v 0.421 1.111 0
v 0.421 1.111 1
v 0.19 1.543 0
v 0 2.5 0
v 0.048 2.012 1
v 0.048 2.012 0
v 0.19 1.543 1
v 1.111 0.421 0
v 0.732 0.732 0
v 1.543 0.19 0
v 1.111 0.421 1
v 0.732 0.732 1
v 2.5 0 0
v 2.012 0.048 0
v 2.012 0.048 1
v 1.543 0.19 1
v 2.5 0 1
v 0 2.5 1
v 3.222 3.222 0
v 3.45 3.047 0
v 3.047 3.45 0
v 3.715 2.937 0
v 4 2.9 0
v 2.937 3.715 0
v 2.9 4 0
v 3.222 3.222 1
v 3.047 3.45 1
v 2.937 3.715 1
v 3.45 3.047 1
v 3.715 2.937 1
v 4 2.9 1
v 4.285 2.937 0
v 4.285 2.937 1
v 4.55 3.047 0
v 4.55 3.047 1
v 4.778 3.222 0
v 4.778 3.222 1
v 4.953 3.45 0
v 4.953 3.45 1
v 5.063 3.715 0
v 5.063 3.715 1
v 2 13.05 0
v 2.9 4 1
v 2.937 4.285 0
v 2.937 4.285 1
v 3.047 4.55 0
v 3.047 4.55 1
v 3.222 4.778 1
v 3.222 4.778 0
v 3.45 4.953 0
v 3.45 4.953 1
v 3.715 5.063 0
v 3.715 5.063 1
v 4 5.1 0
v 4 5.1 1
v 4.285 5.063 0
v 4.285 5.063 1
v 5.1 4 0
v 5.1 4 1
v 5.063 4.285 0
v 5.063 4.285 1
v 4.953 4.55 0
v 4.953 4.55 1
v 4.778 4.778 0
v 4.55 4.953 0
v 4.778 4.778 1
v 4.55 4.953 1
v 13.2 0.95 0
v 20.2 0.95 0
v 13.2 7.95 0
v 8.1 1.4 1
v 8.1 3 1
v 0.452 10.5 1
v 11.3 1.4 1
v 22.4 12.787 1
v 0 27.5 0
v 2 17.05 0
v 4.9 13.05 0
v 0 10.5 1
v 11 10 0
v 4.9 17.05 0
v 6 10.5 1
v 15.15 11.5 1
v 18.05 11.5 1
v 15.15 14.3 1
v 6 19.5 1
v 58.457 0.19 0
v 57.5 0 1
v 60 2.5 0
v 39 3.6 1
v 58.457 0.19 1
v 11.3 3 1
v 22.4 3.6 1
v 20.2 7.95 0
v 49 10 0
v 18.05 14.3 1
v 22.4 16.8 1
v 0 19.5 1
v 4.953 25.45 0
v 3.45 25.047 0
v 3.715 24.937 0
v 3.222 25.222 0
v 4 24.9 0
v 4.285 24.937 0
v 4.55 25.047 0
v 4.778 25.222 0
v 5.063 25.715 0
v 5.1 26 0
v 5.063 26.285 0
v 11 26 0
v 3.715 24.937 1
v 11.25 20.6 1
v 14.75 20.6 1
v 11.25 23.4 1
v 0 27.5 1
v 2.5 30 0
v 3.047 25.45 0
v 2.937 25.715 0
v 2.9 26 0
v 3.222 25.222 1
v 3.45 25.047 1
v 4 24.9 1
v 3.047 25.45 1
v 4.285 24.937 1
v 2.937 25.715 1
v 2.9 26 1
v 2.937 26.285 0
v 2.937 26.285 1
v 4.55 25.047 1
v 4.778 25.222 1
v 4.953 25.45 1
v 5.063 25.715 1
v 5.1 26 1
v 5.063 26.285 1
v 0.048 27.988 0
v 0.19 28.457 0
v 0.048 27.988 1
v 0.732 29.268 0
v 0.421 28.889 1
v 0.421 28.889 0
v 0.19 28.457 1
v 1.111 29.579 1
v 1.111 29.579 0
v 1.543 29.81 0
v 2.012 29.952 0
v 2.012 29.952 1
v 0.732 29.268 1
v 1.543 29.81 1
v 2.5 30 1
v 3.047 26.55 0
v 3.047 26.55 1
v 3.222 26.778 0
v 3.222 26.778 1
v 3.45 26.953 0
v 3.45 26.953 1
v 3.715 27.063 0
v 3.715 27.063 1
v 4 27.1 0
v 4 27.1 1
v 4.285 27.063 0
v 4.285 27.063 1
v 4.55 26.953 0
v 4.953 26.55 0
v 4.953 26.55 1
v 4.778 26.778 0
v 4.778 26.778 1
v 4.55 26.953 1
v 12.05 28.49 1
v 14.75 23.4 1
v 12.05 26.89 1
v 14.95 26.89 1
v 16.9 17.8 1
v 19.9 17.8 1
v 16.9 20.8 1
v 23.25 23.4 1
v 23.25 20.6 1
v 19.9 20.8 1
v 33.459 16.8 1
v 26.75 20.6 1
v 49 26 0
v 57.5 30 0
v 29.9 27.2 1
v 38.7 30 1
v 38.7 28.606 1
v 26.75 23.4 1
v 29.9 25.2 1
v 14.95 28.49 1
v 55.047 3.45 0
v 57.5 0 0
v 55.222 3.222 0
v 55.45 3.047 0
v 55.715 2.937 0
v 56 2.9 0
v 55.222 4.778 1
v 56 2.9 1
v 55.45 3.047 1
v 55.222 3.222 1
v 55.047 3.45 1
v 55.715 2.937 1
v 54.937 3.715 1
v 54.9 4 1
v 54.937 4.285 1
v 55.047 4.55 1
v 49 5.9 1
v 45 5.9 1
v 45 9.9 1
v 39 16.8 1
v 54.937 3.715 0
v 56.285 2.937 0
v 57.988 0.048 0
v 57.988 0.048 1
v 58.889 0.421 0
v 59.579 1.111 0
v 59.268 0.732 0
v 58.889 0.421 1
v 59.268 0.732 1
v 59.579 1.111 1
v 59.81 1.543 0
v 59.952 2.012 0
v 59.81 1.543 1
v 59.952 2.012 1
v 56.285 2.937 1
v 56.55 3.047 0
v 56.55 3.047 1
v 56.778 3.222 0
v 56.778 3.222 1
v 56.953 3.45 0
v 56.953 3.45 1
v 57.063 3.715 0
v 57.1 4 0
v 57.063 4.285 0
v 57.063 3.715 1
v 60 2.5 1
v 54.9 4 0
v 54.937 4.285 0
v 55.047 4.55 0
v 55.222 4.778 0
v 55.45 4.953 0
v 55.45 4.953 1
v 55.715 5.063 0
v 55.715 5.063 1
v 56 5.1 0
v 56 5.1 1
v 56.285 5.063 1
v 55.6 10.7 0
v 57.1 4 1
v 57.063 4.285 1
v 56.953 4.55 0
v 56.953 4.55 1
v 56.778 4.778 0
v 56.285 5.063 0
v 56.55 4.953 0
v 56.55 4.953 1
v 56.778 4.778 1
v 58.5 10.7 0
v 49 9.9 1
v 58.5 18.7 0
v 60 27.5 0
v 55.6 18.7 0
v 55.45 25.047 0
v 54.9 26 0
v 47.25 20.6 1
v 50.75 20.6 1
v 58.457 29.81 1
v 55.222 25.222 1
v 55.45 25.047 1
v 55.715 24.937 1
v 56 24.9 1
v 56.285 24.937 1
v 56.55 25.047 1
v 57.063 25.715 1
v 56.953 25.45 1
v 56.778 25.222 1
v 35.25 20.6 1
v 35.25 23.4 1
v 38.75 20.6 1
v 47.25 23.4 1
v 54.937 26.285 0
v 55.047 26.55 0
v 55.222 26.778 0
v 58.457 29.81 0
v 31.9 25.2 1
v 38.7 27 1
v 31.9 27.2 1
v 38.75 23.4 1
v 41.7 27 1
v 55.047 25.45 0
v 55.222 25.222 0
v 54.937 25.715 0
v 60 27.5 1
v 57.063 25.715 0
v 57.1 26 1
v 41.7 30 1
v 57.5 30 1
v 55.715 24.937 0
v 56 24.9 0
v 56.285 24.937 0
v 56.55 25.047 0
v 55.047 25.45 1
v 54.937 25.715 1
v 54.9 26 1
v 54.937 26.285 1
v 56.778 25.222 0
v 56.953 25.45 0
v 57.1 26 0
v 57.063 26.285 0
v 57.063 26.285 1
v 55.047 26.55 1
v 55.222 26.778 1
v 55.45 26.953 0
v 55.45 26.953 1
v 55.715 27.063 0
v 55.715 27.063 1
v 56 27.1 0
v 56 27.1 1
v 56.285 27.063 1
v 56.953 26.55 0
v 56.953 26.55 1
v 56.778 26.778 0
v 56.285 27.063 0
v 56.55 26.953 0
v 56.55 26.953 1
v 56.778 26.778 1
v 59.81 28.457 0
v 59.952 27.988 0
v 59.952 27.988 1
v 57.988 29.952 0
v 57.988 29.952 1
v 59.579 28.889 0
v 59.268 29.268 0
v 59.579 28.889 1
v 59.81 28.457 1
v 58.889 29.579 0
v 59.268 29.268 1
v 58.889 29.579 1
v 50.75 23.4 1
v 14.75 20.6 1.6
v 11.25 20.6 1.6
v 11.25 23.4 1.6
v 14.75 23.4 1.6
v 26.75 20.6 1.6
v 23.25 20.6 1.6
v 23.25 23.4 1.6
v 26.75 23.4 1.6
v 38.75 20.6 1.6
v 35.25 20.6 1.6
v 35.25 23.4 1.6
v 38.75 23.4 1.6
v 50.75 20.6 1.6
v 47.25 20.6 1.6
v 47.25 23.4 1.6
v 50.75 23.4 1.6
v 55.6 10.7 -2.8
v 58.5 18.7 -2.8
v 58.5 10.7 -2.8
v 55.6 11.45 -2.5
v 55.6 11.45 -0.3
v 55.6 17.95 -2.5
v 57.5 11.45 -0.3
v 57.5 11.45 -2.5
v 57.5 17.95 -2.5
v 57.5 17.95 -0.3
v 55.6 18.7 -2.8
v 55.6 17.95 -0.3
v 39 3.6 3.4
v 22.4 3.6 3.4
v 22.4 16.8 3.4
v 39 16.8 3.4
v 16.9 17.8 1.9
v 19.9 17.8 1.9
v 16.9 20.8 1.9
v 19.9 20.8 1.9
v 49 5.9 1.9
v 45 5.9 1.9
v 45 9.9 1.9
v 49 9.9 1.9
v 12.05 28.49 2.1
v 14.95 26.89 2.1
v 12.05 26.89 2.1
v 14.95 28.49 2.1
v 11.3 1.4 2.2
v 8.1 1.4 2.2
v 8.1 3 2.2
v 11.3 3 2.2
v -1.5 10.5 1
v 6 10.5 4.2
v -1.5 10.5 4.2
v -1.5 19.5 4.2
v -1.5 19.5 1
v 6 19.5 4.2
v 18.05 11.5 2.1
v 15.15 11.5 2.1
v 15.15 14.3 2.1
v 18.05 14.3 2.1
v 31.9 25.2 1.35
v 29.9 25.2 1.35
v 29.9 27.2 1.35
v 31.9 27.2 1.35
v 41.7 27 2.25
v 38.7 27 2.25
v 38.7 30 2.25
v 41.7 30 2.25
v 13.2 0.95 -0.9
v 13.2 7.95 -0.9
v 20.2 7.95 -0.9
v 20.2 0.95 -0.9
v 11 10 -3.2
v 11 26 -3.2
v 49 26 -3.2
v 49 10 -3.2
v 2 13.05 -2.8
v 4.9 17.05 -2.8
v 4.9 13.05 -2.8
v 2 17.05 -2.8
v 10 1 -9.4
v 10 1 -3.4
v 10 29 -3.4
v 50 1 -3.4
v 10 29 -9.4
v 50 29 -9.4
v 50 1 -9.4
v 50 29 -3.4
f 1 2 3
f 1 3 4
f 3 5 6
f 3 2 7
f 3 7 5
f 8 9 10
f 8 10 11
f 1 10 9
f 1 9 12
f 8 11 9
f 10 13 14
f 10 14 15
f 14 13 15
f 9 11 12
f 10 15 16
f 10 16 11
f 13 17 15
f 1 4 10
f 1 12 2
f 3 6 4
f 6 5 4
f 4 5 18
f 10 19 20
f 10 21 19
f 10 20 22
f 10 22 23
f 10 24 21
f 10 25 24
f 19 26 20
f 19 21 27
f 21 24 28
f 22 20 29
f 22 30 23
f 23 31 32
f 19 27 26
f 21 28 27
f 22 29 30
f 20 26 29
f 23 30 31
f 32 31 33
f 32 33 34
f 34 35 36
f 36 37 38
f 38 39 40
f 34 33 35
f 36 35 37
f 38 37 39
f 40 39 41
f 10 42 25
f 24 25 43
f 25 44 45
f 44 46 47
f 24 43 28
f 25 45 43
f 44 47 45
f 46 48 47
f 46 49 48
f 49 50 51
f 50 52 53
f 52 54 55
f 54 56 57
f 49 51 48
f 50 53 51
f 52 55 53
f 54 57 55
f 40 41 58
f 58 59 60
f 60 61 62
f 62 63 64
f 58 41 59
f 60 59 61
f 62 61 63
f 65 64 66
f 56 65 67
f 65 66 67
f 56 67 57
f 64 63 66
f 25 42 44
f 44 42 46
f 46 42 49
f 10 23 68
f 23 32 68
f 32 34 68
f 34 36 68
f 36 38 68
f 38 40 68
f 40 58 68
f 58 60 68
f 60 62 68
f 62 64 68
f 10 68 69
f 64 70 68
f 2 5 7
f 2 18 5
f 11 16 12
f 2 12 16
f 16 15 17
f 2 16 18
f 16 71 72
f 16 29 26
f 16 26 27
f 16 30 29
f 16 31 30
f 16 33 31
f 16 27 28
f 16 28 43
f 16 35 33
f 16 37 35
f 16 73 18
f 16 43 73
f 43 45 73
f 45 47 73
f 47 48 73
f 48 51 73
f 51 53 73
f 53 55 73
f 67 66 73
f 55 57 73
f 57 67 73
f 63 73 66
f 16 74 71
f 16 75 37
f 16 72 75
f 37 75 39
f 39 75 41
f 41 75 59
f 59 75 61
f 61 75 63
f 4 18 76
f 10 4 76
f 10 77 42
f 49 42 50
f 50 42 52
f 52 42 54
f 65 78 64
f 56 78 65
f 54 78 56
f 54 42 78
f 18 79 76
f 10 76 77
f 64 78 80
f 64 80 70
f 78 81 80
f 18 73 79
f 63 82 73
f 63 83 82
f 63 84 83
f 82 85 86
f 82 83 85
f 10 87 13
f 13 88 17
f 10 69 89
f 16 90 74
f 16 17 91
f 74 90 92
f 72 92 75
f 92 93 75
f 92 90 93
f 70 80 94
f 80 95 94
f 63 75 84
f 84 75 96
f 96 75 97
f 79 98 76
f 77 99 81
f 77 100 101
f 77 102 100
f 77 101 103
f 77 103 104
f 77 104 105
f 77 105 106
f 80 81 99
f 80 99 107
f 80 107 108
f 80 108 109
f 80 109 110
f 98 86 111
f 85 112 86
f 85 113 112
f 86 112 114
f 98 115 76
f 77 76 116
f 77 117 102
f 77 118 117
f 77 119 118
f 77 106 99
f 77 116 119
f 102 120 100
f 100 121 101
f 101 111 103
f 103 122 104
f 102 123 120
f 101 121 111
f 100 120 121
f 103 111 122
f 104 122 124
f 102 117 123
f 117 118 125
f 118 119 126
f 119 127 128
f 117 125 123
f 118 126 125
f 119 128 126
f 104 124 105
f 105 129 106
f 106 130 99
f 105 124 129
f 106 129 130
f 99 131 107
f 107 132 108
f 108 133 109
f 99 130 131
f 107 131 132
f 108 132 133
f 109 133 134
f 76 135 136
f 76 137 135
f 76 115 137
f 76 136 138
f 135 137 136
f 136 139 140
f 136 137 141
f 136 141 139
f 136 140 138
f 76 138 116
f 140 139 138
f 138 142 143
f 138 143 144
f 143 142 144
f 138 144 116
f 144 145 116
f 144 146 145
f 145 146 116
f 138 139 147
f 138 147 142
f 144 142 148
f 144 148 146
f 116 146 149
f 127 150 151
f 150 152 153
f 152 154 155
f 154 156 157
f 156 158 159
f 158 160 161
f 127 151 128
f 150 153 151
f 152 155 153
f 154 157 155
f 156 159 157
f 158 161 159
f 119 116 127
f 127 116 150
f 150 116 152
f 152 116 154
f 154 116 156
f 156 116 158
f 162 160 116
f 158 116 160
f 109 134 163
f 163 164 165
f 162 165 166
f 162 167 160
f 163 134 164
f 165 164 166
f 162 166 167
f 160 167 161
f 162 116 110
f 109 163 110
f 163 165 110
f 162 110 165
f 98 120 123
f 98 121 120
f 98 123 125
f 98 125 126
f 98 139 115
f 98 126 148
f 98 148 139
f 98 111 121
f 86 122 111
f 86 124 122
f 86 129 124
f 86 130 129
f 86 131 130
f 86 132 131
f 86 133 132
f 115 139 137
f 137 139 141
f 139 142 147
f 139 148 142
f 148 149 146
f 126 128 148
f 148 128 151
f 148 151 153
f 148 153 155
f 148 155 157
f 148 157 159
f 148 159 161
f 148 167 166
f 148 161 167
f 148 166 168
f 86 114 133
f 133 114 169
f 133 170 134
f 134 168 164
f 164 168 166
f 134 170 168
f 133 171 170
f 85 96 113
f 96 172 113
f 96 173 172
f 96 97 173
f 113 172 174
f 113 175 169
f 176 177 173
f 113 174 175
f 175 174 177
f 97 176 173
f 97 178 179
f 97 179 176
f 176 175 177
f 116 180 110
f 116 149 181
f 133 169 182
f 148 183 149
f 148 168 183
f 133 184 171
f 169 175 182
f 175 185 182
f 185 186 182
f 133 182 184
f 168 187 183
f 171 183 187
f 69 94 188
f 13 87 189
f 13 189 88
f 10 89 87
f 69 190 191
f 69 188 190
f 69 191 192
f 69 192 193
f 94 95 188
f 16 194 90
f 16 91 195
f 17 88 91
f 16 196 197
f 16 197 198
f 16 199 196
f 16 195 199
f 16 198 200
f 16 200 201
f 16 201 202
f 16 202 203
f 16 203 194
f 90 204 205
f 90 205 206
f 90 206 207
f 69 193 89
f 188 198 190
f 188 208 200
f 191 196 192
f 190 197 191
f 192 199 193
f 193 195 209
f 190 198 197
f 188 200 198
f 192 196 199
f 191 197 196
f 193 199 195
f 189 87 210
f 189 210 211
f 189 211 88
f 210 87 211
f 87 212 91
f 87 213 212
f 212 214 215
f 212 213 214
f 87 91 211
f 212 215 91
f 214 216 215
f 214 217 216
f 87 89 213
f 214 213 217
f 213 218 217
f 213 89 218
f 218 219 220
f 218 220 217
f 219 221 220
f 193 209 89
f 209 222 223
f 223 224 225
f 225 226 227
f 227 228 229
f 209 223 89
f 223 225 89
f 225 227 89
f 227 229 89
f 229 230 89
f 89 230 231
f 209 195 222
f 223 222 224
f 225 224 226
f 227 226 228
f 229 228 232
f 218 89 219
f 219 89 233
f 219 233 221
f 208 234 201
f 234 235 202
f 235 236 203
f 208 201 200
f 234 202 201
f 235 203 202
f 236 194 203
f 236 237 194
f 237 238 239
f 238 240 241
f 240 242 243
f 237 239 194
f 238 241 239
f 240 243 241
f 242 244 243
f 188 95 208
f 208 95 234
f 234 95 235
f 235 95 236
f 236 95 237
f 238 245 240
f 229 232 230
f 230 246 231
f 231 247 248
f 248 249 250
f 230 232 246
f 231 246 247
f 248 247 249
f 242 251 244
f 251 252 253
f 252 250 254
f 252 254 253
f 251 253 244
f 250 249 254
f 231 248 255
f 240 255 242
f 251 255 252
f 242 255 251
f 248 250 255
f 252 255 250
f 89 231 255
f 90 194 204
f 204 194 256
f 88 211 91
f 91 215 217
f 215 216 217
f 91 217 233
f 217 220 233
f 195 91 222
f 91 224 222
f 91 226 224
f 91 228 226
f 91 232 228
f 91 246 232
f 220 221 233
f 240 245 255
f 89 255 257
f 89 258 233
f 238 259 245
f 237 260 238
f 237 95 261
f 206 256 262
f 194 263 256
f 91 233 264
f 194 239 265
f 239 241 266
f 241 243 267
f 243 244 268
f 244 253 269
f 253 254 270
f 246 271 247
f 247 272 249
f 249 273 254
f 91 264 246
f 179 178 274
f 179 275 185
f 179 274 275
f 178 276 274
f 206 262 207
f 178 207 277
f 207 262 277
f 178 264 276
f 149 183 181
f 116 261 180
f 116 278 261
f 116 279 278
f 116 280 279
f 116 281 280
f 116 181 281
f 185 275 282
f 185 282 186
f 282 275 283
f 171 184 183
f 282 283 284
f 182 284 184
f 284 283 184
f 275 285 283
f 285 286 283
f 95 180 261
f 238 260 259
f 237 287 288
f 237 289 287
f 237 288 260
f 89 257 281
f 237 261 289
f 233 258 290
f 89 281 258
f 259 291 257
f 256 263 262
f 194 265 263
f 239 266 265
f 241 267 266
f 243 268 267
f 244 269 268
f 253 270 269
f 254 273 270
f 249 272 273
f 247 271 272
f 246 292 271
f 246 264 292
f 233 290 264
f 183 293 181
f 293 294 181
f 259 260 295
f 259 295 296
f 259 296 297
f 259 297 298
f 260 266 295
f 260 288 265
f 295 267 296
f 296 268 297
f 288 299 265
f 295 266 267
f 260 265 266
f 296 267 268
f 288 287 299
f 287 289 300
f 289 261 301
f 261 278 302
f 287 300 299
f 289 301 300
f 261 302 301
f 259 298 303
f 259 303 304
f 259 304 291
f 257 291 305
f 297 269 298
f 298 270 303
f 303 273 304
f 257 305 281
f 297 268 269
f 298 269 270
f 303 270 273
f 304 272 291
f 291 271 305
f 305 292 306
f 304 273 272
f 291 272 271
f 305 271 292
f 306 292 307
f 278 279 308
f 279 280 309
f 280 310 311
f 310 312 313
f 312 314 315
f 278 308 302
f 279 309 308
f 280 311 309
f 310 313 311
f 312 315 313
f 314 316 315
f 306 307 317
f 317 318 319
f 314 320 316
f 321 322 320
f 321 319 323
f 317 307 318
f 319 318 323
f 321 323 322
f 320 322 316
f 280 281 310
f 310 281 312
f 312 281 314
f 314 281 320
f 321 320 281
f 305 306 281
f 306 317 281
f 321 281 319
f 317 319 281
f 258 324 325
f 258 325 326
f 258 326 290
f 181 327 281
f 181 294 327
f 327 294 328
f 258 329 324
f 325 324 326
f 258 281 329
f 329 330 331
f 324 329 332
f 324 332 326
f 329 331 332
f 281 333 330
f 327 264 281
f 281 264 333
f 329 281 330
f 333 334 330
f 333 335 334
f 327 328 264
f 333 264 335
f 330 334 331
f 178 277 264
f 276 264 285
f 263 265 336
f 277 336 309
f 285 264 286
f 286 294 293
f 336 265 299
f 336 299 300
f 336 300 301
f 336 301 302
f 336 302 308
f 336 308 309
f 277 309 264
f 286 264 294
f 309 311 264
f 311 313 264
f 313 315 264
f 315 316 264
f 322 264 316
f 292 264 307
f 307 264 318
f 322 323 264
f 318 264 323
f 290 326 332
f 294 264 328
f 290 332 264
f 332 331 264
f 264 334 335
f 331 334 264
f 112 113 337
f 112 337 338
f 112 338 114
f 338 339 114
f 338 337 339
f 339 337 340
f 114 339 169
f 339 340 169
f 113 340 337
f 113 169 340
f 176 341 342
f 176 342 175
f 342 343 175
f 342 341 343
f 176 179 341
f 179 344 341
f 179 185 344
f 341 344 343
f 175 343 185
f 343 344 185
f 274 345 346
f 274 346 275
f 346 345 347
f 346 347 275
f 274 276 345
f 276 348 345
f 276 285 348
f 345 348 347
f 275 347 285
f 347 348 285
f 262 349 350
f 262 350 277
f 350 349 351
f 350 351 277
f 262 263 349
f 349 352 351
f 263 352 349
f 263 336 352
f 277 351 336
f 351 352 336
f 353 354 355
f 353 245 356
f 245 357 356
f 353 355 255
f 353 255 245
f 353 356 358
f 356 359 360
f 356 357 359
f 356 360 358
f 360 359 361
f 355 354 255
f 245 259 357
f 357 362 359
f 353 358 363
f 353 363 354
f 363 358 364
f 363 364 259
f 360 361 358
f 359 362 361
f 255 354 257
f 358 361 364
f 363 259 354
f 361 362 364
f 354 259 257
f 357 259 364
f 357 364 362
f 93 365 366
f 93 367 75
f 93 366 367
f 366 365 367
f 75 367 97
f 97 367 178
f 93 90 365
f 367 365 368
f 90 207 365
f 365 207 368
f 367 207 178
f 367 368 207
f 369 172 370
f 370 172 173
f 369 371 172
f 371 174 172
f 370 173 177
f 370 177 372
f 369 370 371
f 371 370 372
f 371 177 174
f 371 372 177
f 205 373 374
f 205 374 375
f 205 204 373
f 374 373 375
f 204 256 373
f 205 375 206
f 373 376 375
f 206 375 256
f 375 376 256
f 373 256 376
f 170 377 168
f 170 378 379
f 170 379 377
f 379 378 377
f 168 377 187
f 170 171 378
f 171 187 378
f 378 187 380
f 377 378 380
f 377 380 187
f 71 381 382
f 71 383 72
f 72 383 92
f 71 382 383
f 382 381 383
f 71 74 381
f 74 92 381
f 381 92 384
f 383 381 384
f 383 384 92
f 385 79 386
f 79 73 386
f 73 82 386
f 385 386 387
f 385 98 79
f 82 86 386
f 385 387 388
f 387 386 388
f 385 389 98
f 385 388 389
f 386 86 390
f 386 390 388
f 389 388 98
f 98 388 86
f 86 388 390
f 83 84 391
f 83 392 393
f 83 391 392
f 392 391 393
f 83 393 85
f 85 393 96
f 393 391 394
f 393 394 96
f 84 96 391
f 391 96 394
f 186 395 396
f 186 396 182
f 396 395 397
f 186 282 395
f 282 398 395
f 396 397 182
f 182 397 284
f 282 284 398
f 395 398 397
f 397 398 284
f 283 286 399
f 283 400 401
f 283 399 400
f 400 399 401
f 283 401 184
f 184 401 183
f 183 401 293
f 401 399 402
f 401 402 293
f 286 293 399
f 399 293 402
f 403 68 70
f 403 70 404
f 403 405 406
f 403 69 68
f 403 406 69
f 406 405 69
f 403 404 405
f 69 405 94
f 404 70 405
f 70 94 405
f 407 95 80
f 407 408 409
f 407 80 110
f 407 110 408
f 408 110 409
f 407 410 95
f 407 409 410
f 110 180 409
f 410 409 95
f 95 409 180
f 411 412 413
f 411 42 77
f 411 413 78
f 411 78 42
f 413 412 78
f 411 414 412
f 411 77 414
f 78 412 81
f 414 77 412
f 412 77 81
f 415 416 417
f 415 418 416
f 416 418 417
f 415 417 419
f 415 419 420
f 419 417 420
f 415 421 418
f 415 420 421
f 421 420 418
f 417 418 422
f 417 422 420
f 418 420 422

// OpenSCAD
// =============================================================================
// OpenMotorBridge - Dummy 3D Model: Universal OMM Tri-Band UCS PCBA (PCBA 09/10)
// =============================================================================
// File: hardware/cad/scad/00_common/dummies/dummy_omm446_ucs_pcb.scad
// Description: High-accuracy 3D CAD model of the unified Universal OMM Tri-Band
//              Intercom PCB (2.4 GHz Mesh + BT Classic/BLE Bridge + 446 MHz PMR/DMR):
//              - 60.0 x 30.0 x 1.0 mm FR4 4-layer substrate (ENIG gold finish)
//              - 4x M2 mounting holes (pitch: 52.0 x 22.0 mm, 4.0 mm inset)
//              - U1: Espressif ESP32-C6-MINI-1U with U.FL (Top face, 2.4 GHz Mesh)
//              - U2: Texas Instruments BQ24075RGTR PMIC (Top face, QFN-16 3x3mm)
//              - U3: NiceRF SA818-DMR SMD Transceiver 38.0 x 16.0 x 3.2 mm (Bottom face)
//              - U4: Everest Semi ES8388 Stereo Audio Codec (Top face, QFN-28 4x4mm)
//              - U5: Micropower ME6211C33M5G 3.3V LDO (Top face, SOT-23)
//              - U6: Espressif ESP32-PICO-V3-02 BT Classic/BLE Co-MCU (Bottom face)
//              - ANT1: Johanson 2450AT18x100 2.45 GHz Chip Antenna (Top face)
//              - J1: IP67 16-Pin USB-C receptacle (TYPE-C-31-M-12, -X edge, Top face)
//              - BAT1: 2-Pin JST-SH Battery Header directly beneath J1 on Bottom face
//                      (Local X=3.45, Y=15.05 mm, rot=-90°, 100% clear of battery!)
//              - J_HELMET: 6-Pin JST-SH Helmet Audio/PTT Header at +X edge on Bottom face
//                      (Local X=57.05, Y=14.70 mm, rot=+90°, 100% clear of battery!)
//              - J_RF: U.FL Coaxial RF Receptacle (Top face, Local X=40.20, Y=28.50 mm)
//              - SW1..SW4: 4x tactile IP67 micro-switches (PTT, Mode, Ch+/Vol+, Ch-/Vol-)
//              - D1: WS2812B-2020 RGB Status-LED
//              - 1000 mAh LiPo Flat Pouch Cell (Typ 603040 / 602840: 40 x 28 x 6.0 mm)
//                nested cleanly in the 48 mm center bay between BAT1 and J_HELMET
// =============================================================================

include <../parameters.scad>;

module dummy_omm446_ucs_pcb(include_battery = true) {
    pcb_l = 60.0;
    pcb_w = 30.0;
    pcb_h = 1.0;

    // 1. FR4 4-Layer Substrate (Black Soldermask, ENIG Gold Pads)
    color([0.12, 0.12, 0.14]) {
        difference() {
            // Main PCB outline with rounded corners (R=2.5mm)
            hull() {
                translate([2.5, 2.5, 0]) cylinder(r=2.5, h=pcb_h, $fn=32);
                translate([pcb_l - 2.5, 2.5, 0]) cylinder(r=2.5, h=pcb_h, $fn=32);
                translate([2.5, pcb_w - 2.5, 0]) cylinder(r=2.5, h=pcb_h, $fn=32);
                translate([pcb_l - 2.5, pcb_w - 2.5, 0]) cylinder(r=2.5, h=pcb_h, $fn=32);
            }
            // 4x M2 Mounting Holes (52.0 x 22.0 mm pitch, 4.0 mm from edges)
            translate([4.0, 4.0, -0.1]) cylinder(r=M2_SCREW_HOLE_R, h=pcb_h + 0.2, $fn=24);
            translate([pcb_l - 4.0, 4.0, -0.1]) cylinder(r=M2_SCREW_HOLE_R, h=pcb_h + 0.2, $fn=24);
            translate([4.0, pcb_w - 4.0, -0.1]) cylinder(r=M2_SCREW_HOLE_R, h=pcb_h + 0.2, $fn=24);
            translate([pcb_l - 4.0, pcb_w - 4.0, -0.1]) cylinder(r=M2_SCREW_HOLE_R, h=pcb_h + 0.2, $fn=24);
        }
    }

    // -------------------------------------------------------------------------
    // TOP FACE COMPONENTS (F.Cu)
    // -------------------------------------------------------------------------

    // 2. U1: Espressif ESP32-C6-MINI-1U Module (Top Face, Local X=30.70, Y=10.20 mm)
    color("silver") {
        translate([30.70 - 16.6/2.0, 10.20 - 13.2/2.0, pcb_h])
            cube(size=[16.6, 13.2, 2.4], center=false);
    }

    // 3. U2: TI BQ24075RGTR PMIC (Top Face, Local X=18.40, Y=19.30 mm, QFN-16 3x3mm)
    color("black") {
        translate([18.40 - 1.5, 19.30 - 1.5, pcb_h])
            cube(size=[3.0, 3.0, 0.9], center=false);
    }

    // 4. U4: Everest Semi ES8388 Stereo Audio Codec (Top Face, Local X=47.00, Y=7.90 mm, QFN-28 4x4mm)
    color("black") {
        translate([47.00 - 2.0, 7.90 - 2.0, pcb_h])
            cube(size=[4.0, 4.0, 0.9], center=false);
    }

    // 5. U5: Micropower ME6211C33M5G 3.3V LDO (Top Face, Local X=13.50, Y=27.69 mm, SOT-23)
    color("darkslategray") {
        translate([13.50 - 1.45, 27.69 - 0.8, pcb_h])
            cube(size=[2.9, 1.6, 1.1], center=false);
    }

    // 6. ANT1: Johanson 2450AT18x100 2.45 GHz Ceramic Chip Antenna (Top Face, Local X=9.70, Y=2.20 mm)
    color("whitesmoke") {
        translate([9.70 - 1.6, 2.20 - 0.8, pcb_h])
            cube(size=[3.2, 1.6, 1.2], center=false);
    }

    // 7. J1: IP67 16-Pin USB-C Receptacle (-X Edge, Local X=4.55, Y=15.00 mm)
    color("silver") {
        translate([-1.5, pcb_w/2.0 - 4.5, pcb_h])
            cube(size=[7.5, 9.0, 3.2], center=false);
    }

    // 8. D2: USBLC6-2SC6 ESD Protection (Top Face, Local X=16.60, Y=12.90 mm)
    color("black") {
        translate([16.60 - 1.45, 12.90 - 1.4, pcb_h])
            cube(size=[2.9, 2.8, 1.1], center=false);
    }

    // 9. SW1..SW4: 4x Tactile IP67 Micro-Switches (Top Face, Local X=13, 25, 37, 49, Y=22.0 mm)
    color("darkslategray") {
        translate([13.0, 22.0, pcb_h]) cube(size=[3.5, 2.8, 1.2], center=true);
        translate([25.0, 22.0, pcb_h]) cube(size=[3.5, 2.8, 1.2], center=true);
        translate([37.0, 22.0, pcb_h]) cube(size=[3.5, 2.8, 1.2], center=true);
        translate([49.0, 22.0, pcb_h]) cube(size=[3.5, 2.8, 1.2], center=true);
    }

    // 10. D1: WS2812B-2020 RGB Status-LED (Top Face, Local X=30.90, Y=26.20 mm)
    color("cyan") {
        translate([30.90, 26.20, pcb_h])
            cube(size=[2.0, 2.0, 0.7], center=true);
    }

    // 11. J_RF: U.FL Coaxial RF Receptacle (Top Face, Local X=40.20, Y=28.50 mm)
    color("gold") {
        translate([40.20 - 1.5, 28.50 - 1.5, pcb_h])
            cube(size=[3.0, 3.0, 1.25], center=false);
    }

    // -------------------------------------------------------------------------
    // BOTTOM FACE COMPONENTS (B.Cu)
    // -------------------------------------------------------------------------

    // 12. U6: Espressif ESP32-PICO-V3-02 Bluetooth Classic/BLE Co-MCU (Bottom Face, Local X=16.70, Y=4.45 mm)
    color("black") {
        translate([16.70 - 3.5, 4.45 - 3.5, -0.9])
            cube(size=[7.0, 7.0, 0.9], center=false);
    }

    // 13. U3: NiceRF SA818-DMR Transceiver Module (Bottom Face, Local X=30.0, Y=18.0 mm, 38.0 x 16.0 x 3.2 mm)
    color("silver") {
        translate([30.0 - 19.0, 18.0 - 8.0, -3.2])
            cube(size=[38.0, 16.0, 3.2], center=false);
    }

    // 14. BAT1: 2-Pin JST-SH Battery Header directly beneath J1 USB-C on Bottom Face
    //     (KiCad X=73.45, Y=100.05 -> Local X=3.45, Y=15.05 mm, rot=-90°, completely outside battery!)
    color("ghostwhite") {
        translate([3.45 - 2.9/2.0, 15.05 - 4.0/2.0, -2.8])
            cube(size=[2.9, 4.0, 2.8], center=false);
    }

    // 15. J_HELMET: 6-Pin JST-SH Passive Helmet Audio & PTT Header at +X edge on Bottom Face
    //     (KiCad X=127.05, Y=99.70 -> Local X=57.05, Y=14.70 mm, rot=+90°, completely outside battery!)
    color("ivory") {
        difference() {
            translate([57.05 - 2.9/2.0, 14.70 - 8.0/2.0, -2.8])
                cube(size=[2.9, 8.0, 2.8], center=false);
            // Inward-facing mating socket (-X face)
            translate([57.05 - 2.9/2.0 - 0.1, 14.70 - 6.5/2.0, -2.5])
                cube(size=[2.0, 6.5, 2.2], center=false);
        }
    }

    // 16. 1000 mAh 1S LiPo Flat Pouch Cell (Typ 603040 / 602840: 40.0 x 28.0 x 6.0 mm)
    //     Sits centered in X=10.0..50.0 mm between BAT1 (X=3.45) and J_HELMET (X=57.05),
    //     directly beneath U3 SA818-DMR (Z = -9.4 .. -3.4 mm)
    if (include_battery) {
        color([0.15, 0.35, 0.65]) {
            translate([10.0, (pcb_w - 28.0)/2.0, -9.4])
                cube(size=[40.0, 28.0, 6.0], center=false);
        }
    }
}

// Standalone Render Preview
dummy_omm446_ucs_pcb();
